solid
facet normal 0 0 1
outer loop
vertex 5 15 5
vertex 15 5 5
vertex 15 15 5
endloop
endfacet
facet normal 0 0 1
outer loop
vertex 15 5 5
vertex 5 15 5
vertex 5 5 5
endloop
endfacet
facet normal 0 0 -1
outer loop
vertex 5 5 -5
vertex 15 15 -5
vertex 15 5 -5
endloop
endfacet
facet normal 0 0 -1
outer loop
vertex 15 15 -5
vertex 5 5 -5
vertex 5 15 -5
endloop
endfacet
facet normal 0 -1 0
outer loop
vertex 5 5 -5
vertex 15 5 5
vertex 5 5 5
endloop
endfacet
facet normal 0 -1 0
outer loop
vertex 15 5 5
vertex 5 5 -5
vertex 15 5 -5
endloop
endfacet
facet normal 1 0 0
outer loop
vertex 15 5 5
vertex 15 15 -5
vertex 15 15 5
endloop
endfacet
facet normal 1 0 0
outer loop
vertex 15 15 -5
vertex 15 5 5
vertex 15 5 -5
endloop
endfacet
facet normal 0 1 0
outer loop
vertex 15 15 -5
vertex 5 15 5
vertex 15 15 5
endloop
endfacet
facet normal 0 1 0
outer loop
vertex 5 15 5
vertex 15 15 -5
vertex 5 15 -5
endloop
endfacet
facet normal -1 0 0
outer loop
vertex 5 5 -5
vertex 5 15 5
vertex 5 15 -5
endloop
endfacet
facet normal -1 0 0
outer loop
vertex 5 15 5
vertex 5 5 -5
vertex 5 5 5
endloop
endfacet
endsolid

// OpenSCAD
// Define the cube dimensions
cube_size = 10; // Adjust the size as needed

// Adjustments based on differences_list
translate([5, 5, -5]) // Move the cube slightly to the right and lower its position
rotate([0, 0, 0])     // Ensure the cube is not tilted or rotated
cube([cube_size, cube_size, cube_size]);
